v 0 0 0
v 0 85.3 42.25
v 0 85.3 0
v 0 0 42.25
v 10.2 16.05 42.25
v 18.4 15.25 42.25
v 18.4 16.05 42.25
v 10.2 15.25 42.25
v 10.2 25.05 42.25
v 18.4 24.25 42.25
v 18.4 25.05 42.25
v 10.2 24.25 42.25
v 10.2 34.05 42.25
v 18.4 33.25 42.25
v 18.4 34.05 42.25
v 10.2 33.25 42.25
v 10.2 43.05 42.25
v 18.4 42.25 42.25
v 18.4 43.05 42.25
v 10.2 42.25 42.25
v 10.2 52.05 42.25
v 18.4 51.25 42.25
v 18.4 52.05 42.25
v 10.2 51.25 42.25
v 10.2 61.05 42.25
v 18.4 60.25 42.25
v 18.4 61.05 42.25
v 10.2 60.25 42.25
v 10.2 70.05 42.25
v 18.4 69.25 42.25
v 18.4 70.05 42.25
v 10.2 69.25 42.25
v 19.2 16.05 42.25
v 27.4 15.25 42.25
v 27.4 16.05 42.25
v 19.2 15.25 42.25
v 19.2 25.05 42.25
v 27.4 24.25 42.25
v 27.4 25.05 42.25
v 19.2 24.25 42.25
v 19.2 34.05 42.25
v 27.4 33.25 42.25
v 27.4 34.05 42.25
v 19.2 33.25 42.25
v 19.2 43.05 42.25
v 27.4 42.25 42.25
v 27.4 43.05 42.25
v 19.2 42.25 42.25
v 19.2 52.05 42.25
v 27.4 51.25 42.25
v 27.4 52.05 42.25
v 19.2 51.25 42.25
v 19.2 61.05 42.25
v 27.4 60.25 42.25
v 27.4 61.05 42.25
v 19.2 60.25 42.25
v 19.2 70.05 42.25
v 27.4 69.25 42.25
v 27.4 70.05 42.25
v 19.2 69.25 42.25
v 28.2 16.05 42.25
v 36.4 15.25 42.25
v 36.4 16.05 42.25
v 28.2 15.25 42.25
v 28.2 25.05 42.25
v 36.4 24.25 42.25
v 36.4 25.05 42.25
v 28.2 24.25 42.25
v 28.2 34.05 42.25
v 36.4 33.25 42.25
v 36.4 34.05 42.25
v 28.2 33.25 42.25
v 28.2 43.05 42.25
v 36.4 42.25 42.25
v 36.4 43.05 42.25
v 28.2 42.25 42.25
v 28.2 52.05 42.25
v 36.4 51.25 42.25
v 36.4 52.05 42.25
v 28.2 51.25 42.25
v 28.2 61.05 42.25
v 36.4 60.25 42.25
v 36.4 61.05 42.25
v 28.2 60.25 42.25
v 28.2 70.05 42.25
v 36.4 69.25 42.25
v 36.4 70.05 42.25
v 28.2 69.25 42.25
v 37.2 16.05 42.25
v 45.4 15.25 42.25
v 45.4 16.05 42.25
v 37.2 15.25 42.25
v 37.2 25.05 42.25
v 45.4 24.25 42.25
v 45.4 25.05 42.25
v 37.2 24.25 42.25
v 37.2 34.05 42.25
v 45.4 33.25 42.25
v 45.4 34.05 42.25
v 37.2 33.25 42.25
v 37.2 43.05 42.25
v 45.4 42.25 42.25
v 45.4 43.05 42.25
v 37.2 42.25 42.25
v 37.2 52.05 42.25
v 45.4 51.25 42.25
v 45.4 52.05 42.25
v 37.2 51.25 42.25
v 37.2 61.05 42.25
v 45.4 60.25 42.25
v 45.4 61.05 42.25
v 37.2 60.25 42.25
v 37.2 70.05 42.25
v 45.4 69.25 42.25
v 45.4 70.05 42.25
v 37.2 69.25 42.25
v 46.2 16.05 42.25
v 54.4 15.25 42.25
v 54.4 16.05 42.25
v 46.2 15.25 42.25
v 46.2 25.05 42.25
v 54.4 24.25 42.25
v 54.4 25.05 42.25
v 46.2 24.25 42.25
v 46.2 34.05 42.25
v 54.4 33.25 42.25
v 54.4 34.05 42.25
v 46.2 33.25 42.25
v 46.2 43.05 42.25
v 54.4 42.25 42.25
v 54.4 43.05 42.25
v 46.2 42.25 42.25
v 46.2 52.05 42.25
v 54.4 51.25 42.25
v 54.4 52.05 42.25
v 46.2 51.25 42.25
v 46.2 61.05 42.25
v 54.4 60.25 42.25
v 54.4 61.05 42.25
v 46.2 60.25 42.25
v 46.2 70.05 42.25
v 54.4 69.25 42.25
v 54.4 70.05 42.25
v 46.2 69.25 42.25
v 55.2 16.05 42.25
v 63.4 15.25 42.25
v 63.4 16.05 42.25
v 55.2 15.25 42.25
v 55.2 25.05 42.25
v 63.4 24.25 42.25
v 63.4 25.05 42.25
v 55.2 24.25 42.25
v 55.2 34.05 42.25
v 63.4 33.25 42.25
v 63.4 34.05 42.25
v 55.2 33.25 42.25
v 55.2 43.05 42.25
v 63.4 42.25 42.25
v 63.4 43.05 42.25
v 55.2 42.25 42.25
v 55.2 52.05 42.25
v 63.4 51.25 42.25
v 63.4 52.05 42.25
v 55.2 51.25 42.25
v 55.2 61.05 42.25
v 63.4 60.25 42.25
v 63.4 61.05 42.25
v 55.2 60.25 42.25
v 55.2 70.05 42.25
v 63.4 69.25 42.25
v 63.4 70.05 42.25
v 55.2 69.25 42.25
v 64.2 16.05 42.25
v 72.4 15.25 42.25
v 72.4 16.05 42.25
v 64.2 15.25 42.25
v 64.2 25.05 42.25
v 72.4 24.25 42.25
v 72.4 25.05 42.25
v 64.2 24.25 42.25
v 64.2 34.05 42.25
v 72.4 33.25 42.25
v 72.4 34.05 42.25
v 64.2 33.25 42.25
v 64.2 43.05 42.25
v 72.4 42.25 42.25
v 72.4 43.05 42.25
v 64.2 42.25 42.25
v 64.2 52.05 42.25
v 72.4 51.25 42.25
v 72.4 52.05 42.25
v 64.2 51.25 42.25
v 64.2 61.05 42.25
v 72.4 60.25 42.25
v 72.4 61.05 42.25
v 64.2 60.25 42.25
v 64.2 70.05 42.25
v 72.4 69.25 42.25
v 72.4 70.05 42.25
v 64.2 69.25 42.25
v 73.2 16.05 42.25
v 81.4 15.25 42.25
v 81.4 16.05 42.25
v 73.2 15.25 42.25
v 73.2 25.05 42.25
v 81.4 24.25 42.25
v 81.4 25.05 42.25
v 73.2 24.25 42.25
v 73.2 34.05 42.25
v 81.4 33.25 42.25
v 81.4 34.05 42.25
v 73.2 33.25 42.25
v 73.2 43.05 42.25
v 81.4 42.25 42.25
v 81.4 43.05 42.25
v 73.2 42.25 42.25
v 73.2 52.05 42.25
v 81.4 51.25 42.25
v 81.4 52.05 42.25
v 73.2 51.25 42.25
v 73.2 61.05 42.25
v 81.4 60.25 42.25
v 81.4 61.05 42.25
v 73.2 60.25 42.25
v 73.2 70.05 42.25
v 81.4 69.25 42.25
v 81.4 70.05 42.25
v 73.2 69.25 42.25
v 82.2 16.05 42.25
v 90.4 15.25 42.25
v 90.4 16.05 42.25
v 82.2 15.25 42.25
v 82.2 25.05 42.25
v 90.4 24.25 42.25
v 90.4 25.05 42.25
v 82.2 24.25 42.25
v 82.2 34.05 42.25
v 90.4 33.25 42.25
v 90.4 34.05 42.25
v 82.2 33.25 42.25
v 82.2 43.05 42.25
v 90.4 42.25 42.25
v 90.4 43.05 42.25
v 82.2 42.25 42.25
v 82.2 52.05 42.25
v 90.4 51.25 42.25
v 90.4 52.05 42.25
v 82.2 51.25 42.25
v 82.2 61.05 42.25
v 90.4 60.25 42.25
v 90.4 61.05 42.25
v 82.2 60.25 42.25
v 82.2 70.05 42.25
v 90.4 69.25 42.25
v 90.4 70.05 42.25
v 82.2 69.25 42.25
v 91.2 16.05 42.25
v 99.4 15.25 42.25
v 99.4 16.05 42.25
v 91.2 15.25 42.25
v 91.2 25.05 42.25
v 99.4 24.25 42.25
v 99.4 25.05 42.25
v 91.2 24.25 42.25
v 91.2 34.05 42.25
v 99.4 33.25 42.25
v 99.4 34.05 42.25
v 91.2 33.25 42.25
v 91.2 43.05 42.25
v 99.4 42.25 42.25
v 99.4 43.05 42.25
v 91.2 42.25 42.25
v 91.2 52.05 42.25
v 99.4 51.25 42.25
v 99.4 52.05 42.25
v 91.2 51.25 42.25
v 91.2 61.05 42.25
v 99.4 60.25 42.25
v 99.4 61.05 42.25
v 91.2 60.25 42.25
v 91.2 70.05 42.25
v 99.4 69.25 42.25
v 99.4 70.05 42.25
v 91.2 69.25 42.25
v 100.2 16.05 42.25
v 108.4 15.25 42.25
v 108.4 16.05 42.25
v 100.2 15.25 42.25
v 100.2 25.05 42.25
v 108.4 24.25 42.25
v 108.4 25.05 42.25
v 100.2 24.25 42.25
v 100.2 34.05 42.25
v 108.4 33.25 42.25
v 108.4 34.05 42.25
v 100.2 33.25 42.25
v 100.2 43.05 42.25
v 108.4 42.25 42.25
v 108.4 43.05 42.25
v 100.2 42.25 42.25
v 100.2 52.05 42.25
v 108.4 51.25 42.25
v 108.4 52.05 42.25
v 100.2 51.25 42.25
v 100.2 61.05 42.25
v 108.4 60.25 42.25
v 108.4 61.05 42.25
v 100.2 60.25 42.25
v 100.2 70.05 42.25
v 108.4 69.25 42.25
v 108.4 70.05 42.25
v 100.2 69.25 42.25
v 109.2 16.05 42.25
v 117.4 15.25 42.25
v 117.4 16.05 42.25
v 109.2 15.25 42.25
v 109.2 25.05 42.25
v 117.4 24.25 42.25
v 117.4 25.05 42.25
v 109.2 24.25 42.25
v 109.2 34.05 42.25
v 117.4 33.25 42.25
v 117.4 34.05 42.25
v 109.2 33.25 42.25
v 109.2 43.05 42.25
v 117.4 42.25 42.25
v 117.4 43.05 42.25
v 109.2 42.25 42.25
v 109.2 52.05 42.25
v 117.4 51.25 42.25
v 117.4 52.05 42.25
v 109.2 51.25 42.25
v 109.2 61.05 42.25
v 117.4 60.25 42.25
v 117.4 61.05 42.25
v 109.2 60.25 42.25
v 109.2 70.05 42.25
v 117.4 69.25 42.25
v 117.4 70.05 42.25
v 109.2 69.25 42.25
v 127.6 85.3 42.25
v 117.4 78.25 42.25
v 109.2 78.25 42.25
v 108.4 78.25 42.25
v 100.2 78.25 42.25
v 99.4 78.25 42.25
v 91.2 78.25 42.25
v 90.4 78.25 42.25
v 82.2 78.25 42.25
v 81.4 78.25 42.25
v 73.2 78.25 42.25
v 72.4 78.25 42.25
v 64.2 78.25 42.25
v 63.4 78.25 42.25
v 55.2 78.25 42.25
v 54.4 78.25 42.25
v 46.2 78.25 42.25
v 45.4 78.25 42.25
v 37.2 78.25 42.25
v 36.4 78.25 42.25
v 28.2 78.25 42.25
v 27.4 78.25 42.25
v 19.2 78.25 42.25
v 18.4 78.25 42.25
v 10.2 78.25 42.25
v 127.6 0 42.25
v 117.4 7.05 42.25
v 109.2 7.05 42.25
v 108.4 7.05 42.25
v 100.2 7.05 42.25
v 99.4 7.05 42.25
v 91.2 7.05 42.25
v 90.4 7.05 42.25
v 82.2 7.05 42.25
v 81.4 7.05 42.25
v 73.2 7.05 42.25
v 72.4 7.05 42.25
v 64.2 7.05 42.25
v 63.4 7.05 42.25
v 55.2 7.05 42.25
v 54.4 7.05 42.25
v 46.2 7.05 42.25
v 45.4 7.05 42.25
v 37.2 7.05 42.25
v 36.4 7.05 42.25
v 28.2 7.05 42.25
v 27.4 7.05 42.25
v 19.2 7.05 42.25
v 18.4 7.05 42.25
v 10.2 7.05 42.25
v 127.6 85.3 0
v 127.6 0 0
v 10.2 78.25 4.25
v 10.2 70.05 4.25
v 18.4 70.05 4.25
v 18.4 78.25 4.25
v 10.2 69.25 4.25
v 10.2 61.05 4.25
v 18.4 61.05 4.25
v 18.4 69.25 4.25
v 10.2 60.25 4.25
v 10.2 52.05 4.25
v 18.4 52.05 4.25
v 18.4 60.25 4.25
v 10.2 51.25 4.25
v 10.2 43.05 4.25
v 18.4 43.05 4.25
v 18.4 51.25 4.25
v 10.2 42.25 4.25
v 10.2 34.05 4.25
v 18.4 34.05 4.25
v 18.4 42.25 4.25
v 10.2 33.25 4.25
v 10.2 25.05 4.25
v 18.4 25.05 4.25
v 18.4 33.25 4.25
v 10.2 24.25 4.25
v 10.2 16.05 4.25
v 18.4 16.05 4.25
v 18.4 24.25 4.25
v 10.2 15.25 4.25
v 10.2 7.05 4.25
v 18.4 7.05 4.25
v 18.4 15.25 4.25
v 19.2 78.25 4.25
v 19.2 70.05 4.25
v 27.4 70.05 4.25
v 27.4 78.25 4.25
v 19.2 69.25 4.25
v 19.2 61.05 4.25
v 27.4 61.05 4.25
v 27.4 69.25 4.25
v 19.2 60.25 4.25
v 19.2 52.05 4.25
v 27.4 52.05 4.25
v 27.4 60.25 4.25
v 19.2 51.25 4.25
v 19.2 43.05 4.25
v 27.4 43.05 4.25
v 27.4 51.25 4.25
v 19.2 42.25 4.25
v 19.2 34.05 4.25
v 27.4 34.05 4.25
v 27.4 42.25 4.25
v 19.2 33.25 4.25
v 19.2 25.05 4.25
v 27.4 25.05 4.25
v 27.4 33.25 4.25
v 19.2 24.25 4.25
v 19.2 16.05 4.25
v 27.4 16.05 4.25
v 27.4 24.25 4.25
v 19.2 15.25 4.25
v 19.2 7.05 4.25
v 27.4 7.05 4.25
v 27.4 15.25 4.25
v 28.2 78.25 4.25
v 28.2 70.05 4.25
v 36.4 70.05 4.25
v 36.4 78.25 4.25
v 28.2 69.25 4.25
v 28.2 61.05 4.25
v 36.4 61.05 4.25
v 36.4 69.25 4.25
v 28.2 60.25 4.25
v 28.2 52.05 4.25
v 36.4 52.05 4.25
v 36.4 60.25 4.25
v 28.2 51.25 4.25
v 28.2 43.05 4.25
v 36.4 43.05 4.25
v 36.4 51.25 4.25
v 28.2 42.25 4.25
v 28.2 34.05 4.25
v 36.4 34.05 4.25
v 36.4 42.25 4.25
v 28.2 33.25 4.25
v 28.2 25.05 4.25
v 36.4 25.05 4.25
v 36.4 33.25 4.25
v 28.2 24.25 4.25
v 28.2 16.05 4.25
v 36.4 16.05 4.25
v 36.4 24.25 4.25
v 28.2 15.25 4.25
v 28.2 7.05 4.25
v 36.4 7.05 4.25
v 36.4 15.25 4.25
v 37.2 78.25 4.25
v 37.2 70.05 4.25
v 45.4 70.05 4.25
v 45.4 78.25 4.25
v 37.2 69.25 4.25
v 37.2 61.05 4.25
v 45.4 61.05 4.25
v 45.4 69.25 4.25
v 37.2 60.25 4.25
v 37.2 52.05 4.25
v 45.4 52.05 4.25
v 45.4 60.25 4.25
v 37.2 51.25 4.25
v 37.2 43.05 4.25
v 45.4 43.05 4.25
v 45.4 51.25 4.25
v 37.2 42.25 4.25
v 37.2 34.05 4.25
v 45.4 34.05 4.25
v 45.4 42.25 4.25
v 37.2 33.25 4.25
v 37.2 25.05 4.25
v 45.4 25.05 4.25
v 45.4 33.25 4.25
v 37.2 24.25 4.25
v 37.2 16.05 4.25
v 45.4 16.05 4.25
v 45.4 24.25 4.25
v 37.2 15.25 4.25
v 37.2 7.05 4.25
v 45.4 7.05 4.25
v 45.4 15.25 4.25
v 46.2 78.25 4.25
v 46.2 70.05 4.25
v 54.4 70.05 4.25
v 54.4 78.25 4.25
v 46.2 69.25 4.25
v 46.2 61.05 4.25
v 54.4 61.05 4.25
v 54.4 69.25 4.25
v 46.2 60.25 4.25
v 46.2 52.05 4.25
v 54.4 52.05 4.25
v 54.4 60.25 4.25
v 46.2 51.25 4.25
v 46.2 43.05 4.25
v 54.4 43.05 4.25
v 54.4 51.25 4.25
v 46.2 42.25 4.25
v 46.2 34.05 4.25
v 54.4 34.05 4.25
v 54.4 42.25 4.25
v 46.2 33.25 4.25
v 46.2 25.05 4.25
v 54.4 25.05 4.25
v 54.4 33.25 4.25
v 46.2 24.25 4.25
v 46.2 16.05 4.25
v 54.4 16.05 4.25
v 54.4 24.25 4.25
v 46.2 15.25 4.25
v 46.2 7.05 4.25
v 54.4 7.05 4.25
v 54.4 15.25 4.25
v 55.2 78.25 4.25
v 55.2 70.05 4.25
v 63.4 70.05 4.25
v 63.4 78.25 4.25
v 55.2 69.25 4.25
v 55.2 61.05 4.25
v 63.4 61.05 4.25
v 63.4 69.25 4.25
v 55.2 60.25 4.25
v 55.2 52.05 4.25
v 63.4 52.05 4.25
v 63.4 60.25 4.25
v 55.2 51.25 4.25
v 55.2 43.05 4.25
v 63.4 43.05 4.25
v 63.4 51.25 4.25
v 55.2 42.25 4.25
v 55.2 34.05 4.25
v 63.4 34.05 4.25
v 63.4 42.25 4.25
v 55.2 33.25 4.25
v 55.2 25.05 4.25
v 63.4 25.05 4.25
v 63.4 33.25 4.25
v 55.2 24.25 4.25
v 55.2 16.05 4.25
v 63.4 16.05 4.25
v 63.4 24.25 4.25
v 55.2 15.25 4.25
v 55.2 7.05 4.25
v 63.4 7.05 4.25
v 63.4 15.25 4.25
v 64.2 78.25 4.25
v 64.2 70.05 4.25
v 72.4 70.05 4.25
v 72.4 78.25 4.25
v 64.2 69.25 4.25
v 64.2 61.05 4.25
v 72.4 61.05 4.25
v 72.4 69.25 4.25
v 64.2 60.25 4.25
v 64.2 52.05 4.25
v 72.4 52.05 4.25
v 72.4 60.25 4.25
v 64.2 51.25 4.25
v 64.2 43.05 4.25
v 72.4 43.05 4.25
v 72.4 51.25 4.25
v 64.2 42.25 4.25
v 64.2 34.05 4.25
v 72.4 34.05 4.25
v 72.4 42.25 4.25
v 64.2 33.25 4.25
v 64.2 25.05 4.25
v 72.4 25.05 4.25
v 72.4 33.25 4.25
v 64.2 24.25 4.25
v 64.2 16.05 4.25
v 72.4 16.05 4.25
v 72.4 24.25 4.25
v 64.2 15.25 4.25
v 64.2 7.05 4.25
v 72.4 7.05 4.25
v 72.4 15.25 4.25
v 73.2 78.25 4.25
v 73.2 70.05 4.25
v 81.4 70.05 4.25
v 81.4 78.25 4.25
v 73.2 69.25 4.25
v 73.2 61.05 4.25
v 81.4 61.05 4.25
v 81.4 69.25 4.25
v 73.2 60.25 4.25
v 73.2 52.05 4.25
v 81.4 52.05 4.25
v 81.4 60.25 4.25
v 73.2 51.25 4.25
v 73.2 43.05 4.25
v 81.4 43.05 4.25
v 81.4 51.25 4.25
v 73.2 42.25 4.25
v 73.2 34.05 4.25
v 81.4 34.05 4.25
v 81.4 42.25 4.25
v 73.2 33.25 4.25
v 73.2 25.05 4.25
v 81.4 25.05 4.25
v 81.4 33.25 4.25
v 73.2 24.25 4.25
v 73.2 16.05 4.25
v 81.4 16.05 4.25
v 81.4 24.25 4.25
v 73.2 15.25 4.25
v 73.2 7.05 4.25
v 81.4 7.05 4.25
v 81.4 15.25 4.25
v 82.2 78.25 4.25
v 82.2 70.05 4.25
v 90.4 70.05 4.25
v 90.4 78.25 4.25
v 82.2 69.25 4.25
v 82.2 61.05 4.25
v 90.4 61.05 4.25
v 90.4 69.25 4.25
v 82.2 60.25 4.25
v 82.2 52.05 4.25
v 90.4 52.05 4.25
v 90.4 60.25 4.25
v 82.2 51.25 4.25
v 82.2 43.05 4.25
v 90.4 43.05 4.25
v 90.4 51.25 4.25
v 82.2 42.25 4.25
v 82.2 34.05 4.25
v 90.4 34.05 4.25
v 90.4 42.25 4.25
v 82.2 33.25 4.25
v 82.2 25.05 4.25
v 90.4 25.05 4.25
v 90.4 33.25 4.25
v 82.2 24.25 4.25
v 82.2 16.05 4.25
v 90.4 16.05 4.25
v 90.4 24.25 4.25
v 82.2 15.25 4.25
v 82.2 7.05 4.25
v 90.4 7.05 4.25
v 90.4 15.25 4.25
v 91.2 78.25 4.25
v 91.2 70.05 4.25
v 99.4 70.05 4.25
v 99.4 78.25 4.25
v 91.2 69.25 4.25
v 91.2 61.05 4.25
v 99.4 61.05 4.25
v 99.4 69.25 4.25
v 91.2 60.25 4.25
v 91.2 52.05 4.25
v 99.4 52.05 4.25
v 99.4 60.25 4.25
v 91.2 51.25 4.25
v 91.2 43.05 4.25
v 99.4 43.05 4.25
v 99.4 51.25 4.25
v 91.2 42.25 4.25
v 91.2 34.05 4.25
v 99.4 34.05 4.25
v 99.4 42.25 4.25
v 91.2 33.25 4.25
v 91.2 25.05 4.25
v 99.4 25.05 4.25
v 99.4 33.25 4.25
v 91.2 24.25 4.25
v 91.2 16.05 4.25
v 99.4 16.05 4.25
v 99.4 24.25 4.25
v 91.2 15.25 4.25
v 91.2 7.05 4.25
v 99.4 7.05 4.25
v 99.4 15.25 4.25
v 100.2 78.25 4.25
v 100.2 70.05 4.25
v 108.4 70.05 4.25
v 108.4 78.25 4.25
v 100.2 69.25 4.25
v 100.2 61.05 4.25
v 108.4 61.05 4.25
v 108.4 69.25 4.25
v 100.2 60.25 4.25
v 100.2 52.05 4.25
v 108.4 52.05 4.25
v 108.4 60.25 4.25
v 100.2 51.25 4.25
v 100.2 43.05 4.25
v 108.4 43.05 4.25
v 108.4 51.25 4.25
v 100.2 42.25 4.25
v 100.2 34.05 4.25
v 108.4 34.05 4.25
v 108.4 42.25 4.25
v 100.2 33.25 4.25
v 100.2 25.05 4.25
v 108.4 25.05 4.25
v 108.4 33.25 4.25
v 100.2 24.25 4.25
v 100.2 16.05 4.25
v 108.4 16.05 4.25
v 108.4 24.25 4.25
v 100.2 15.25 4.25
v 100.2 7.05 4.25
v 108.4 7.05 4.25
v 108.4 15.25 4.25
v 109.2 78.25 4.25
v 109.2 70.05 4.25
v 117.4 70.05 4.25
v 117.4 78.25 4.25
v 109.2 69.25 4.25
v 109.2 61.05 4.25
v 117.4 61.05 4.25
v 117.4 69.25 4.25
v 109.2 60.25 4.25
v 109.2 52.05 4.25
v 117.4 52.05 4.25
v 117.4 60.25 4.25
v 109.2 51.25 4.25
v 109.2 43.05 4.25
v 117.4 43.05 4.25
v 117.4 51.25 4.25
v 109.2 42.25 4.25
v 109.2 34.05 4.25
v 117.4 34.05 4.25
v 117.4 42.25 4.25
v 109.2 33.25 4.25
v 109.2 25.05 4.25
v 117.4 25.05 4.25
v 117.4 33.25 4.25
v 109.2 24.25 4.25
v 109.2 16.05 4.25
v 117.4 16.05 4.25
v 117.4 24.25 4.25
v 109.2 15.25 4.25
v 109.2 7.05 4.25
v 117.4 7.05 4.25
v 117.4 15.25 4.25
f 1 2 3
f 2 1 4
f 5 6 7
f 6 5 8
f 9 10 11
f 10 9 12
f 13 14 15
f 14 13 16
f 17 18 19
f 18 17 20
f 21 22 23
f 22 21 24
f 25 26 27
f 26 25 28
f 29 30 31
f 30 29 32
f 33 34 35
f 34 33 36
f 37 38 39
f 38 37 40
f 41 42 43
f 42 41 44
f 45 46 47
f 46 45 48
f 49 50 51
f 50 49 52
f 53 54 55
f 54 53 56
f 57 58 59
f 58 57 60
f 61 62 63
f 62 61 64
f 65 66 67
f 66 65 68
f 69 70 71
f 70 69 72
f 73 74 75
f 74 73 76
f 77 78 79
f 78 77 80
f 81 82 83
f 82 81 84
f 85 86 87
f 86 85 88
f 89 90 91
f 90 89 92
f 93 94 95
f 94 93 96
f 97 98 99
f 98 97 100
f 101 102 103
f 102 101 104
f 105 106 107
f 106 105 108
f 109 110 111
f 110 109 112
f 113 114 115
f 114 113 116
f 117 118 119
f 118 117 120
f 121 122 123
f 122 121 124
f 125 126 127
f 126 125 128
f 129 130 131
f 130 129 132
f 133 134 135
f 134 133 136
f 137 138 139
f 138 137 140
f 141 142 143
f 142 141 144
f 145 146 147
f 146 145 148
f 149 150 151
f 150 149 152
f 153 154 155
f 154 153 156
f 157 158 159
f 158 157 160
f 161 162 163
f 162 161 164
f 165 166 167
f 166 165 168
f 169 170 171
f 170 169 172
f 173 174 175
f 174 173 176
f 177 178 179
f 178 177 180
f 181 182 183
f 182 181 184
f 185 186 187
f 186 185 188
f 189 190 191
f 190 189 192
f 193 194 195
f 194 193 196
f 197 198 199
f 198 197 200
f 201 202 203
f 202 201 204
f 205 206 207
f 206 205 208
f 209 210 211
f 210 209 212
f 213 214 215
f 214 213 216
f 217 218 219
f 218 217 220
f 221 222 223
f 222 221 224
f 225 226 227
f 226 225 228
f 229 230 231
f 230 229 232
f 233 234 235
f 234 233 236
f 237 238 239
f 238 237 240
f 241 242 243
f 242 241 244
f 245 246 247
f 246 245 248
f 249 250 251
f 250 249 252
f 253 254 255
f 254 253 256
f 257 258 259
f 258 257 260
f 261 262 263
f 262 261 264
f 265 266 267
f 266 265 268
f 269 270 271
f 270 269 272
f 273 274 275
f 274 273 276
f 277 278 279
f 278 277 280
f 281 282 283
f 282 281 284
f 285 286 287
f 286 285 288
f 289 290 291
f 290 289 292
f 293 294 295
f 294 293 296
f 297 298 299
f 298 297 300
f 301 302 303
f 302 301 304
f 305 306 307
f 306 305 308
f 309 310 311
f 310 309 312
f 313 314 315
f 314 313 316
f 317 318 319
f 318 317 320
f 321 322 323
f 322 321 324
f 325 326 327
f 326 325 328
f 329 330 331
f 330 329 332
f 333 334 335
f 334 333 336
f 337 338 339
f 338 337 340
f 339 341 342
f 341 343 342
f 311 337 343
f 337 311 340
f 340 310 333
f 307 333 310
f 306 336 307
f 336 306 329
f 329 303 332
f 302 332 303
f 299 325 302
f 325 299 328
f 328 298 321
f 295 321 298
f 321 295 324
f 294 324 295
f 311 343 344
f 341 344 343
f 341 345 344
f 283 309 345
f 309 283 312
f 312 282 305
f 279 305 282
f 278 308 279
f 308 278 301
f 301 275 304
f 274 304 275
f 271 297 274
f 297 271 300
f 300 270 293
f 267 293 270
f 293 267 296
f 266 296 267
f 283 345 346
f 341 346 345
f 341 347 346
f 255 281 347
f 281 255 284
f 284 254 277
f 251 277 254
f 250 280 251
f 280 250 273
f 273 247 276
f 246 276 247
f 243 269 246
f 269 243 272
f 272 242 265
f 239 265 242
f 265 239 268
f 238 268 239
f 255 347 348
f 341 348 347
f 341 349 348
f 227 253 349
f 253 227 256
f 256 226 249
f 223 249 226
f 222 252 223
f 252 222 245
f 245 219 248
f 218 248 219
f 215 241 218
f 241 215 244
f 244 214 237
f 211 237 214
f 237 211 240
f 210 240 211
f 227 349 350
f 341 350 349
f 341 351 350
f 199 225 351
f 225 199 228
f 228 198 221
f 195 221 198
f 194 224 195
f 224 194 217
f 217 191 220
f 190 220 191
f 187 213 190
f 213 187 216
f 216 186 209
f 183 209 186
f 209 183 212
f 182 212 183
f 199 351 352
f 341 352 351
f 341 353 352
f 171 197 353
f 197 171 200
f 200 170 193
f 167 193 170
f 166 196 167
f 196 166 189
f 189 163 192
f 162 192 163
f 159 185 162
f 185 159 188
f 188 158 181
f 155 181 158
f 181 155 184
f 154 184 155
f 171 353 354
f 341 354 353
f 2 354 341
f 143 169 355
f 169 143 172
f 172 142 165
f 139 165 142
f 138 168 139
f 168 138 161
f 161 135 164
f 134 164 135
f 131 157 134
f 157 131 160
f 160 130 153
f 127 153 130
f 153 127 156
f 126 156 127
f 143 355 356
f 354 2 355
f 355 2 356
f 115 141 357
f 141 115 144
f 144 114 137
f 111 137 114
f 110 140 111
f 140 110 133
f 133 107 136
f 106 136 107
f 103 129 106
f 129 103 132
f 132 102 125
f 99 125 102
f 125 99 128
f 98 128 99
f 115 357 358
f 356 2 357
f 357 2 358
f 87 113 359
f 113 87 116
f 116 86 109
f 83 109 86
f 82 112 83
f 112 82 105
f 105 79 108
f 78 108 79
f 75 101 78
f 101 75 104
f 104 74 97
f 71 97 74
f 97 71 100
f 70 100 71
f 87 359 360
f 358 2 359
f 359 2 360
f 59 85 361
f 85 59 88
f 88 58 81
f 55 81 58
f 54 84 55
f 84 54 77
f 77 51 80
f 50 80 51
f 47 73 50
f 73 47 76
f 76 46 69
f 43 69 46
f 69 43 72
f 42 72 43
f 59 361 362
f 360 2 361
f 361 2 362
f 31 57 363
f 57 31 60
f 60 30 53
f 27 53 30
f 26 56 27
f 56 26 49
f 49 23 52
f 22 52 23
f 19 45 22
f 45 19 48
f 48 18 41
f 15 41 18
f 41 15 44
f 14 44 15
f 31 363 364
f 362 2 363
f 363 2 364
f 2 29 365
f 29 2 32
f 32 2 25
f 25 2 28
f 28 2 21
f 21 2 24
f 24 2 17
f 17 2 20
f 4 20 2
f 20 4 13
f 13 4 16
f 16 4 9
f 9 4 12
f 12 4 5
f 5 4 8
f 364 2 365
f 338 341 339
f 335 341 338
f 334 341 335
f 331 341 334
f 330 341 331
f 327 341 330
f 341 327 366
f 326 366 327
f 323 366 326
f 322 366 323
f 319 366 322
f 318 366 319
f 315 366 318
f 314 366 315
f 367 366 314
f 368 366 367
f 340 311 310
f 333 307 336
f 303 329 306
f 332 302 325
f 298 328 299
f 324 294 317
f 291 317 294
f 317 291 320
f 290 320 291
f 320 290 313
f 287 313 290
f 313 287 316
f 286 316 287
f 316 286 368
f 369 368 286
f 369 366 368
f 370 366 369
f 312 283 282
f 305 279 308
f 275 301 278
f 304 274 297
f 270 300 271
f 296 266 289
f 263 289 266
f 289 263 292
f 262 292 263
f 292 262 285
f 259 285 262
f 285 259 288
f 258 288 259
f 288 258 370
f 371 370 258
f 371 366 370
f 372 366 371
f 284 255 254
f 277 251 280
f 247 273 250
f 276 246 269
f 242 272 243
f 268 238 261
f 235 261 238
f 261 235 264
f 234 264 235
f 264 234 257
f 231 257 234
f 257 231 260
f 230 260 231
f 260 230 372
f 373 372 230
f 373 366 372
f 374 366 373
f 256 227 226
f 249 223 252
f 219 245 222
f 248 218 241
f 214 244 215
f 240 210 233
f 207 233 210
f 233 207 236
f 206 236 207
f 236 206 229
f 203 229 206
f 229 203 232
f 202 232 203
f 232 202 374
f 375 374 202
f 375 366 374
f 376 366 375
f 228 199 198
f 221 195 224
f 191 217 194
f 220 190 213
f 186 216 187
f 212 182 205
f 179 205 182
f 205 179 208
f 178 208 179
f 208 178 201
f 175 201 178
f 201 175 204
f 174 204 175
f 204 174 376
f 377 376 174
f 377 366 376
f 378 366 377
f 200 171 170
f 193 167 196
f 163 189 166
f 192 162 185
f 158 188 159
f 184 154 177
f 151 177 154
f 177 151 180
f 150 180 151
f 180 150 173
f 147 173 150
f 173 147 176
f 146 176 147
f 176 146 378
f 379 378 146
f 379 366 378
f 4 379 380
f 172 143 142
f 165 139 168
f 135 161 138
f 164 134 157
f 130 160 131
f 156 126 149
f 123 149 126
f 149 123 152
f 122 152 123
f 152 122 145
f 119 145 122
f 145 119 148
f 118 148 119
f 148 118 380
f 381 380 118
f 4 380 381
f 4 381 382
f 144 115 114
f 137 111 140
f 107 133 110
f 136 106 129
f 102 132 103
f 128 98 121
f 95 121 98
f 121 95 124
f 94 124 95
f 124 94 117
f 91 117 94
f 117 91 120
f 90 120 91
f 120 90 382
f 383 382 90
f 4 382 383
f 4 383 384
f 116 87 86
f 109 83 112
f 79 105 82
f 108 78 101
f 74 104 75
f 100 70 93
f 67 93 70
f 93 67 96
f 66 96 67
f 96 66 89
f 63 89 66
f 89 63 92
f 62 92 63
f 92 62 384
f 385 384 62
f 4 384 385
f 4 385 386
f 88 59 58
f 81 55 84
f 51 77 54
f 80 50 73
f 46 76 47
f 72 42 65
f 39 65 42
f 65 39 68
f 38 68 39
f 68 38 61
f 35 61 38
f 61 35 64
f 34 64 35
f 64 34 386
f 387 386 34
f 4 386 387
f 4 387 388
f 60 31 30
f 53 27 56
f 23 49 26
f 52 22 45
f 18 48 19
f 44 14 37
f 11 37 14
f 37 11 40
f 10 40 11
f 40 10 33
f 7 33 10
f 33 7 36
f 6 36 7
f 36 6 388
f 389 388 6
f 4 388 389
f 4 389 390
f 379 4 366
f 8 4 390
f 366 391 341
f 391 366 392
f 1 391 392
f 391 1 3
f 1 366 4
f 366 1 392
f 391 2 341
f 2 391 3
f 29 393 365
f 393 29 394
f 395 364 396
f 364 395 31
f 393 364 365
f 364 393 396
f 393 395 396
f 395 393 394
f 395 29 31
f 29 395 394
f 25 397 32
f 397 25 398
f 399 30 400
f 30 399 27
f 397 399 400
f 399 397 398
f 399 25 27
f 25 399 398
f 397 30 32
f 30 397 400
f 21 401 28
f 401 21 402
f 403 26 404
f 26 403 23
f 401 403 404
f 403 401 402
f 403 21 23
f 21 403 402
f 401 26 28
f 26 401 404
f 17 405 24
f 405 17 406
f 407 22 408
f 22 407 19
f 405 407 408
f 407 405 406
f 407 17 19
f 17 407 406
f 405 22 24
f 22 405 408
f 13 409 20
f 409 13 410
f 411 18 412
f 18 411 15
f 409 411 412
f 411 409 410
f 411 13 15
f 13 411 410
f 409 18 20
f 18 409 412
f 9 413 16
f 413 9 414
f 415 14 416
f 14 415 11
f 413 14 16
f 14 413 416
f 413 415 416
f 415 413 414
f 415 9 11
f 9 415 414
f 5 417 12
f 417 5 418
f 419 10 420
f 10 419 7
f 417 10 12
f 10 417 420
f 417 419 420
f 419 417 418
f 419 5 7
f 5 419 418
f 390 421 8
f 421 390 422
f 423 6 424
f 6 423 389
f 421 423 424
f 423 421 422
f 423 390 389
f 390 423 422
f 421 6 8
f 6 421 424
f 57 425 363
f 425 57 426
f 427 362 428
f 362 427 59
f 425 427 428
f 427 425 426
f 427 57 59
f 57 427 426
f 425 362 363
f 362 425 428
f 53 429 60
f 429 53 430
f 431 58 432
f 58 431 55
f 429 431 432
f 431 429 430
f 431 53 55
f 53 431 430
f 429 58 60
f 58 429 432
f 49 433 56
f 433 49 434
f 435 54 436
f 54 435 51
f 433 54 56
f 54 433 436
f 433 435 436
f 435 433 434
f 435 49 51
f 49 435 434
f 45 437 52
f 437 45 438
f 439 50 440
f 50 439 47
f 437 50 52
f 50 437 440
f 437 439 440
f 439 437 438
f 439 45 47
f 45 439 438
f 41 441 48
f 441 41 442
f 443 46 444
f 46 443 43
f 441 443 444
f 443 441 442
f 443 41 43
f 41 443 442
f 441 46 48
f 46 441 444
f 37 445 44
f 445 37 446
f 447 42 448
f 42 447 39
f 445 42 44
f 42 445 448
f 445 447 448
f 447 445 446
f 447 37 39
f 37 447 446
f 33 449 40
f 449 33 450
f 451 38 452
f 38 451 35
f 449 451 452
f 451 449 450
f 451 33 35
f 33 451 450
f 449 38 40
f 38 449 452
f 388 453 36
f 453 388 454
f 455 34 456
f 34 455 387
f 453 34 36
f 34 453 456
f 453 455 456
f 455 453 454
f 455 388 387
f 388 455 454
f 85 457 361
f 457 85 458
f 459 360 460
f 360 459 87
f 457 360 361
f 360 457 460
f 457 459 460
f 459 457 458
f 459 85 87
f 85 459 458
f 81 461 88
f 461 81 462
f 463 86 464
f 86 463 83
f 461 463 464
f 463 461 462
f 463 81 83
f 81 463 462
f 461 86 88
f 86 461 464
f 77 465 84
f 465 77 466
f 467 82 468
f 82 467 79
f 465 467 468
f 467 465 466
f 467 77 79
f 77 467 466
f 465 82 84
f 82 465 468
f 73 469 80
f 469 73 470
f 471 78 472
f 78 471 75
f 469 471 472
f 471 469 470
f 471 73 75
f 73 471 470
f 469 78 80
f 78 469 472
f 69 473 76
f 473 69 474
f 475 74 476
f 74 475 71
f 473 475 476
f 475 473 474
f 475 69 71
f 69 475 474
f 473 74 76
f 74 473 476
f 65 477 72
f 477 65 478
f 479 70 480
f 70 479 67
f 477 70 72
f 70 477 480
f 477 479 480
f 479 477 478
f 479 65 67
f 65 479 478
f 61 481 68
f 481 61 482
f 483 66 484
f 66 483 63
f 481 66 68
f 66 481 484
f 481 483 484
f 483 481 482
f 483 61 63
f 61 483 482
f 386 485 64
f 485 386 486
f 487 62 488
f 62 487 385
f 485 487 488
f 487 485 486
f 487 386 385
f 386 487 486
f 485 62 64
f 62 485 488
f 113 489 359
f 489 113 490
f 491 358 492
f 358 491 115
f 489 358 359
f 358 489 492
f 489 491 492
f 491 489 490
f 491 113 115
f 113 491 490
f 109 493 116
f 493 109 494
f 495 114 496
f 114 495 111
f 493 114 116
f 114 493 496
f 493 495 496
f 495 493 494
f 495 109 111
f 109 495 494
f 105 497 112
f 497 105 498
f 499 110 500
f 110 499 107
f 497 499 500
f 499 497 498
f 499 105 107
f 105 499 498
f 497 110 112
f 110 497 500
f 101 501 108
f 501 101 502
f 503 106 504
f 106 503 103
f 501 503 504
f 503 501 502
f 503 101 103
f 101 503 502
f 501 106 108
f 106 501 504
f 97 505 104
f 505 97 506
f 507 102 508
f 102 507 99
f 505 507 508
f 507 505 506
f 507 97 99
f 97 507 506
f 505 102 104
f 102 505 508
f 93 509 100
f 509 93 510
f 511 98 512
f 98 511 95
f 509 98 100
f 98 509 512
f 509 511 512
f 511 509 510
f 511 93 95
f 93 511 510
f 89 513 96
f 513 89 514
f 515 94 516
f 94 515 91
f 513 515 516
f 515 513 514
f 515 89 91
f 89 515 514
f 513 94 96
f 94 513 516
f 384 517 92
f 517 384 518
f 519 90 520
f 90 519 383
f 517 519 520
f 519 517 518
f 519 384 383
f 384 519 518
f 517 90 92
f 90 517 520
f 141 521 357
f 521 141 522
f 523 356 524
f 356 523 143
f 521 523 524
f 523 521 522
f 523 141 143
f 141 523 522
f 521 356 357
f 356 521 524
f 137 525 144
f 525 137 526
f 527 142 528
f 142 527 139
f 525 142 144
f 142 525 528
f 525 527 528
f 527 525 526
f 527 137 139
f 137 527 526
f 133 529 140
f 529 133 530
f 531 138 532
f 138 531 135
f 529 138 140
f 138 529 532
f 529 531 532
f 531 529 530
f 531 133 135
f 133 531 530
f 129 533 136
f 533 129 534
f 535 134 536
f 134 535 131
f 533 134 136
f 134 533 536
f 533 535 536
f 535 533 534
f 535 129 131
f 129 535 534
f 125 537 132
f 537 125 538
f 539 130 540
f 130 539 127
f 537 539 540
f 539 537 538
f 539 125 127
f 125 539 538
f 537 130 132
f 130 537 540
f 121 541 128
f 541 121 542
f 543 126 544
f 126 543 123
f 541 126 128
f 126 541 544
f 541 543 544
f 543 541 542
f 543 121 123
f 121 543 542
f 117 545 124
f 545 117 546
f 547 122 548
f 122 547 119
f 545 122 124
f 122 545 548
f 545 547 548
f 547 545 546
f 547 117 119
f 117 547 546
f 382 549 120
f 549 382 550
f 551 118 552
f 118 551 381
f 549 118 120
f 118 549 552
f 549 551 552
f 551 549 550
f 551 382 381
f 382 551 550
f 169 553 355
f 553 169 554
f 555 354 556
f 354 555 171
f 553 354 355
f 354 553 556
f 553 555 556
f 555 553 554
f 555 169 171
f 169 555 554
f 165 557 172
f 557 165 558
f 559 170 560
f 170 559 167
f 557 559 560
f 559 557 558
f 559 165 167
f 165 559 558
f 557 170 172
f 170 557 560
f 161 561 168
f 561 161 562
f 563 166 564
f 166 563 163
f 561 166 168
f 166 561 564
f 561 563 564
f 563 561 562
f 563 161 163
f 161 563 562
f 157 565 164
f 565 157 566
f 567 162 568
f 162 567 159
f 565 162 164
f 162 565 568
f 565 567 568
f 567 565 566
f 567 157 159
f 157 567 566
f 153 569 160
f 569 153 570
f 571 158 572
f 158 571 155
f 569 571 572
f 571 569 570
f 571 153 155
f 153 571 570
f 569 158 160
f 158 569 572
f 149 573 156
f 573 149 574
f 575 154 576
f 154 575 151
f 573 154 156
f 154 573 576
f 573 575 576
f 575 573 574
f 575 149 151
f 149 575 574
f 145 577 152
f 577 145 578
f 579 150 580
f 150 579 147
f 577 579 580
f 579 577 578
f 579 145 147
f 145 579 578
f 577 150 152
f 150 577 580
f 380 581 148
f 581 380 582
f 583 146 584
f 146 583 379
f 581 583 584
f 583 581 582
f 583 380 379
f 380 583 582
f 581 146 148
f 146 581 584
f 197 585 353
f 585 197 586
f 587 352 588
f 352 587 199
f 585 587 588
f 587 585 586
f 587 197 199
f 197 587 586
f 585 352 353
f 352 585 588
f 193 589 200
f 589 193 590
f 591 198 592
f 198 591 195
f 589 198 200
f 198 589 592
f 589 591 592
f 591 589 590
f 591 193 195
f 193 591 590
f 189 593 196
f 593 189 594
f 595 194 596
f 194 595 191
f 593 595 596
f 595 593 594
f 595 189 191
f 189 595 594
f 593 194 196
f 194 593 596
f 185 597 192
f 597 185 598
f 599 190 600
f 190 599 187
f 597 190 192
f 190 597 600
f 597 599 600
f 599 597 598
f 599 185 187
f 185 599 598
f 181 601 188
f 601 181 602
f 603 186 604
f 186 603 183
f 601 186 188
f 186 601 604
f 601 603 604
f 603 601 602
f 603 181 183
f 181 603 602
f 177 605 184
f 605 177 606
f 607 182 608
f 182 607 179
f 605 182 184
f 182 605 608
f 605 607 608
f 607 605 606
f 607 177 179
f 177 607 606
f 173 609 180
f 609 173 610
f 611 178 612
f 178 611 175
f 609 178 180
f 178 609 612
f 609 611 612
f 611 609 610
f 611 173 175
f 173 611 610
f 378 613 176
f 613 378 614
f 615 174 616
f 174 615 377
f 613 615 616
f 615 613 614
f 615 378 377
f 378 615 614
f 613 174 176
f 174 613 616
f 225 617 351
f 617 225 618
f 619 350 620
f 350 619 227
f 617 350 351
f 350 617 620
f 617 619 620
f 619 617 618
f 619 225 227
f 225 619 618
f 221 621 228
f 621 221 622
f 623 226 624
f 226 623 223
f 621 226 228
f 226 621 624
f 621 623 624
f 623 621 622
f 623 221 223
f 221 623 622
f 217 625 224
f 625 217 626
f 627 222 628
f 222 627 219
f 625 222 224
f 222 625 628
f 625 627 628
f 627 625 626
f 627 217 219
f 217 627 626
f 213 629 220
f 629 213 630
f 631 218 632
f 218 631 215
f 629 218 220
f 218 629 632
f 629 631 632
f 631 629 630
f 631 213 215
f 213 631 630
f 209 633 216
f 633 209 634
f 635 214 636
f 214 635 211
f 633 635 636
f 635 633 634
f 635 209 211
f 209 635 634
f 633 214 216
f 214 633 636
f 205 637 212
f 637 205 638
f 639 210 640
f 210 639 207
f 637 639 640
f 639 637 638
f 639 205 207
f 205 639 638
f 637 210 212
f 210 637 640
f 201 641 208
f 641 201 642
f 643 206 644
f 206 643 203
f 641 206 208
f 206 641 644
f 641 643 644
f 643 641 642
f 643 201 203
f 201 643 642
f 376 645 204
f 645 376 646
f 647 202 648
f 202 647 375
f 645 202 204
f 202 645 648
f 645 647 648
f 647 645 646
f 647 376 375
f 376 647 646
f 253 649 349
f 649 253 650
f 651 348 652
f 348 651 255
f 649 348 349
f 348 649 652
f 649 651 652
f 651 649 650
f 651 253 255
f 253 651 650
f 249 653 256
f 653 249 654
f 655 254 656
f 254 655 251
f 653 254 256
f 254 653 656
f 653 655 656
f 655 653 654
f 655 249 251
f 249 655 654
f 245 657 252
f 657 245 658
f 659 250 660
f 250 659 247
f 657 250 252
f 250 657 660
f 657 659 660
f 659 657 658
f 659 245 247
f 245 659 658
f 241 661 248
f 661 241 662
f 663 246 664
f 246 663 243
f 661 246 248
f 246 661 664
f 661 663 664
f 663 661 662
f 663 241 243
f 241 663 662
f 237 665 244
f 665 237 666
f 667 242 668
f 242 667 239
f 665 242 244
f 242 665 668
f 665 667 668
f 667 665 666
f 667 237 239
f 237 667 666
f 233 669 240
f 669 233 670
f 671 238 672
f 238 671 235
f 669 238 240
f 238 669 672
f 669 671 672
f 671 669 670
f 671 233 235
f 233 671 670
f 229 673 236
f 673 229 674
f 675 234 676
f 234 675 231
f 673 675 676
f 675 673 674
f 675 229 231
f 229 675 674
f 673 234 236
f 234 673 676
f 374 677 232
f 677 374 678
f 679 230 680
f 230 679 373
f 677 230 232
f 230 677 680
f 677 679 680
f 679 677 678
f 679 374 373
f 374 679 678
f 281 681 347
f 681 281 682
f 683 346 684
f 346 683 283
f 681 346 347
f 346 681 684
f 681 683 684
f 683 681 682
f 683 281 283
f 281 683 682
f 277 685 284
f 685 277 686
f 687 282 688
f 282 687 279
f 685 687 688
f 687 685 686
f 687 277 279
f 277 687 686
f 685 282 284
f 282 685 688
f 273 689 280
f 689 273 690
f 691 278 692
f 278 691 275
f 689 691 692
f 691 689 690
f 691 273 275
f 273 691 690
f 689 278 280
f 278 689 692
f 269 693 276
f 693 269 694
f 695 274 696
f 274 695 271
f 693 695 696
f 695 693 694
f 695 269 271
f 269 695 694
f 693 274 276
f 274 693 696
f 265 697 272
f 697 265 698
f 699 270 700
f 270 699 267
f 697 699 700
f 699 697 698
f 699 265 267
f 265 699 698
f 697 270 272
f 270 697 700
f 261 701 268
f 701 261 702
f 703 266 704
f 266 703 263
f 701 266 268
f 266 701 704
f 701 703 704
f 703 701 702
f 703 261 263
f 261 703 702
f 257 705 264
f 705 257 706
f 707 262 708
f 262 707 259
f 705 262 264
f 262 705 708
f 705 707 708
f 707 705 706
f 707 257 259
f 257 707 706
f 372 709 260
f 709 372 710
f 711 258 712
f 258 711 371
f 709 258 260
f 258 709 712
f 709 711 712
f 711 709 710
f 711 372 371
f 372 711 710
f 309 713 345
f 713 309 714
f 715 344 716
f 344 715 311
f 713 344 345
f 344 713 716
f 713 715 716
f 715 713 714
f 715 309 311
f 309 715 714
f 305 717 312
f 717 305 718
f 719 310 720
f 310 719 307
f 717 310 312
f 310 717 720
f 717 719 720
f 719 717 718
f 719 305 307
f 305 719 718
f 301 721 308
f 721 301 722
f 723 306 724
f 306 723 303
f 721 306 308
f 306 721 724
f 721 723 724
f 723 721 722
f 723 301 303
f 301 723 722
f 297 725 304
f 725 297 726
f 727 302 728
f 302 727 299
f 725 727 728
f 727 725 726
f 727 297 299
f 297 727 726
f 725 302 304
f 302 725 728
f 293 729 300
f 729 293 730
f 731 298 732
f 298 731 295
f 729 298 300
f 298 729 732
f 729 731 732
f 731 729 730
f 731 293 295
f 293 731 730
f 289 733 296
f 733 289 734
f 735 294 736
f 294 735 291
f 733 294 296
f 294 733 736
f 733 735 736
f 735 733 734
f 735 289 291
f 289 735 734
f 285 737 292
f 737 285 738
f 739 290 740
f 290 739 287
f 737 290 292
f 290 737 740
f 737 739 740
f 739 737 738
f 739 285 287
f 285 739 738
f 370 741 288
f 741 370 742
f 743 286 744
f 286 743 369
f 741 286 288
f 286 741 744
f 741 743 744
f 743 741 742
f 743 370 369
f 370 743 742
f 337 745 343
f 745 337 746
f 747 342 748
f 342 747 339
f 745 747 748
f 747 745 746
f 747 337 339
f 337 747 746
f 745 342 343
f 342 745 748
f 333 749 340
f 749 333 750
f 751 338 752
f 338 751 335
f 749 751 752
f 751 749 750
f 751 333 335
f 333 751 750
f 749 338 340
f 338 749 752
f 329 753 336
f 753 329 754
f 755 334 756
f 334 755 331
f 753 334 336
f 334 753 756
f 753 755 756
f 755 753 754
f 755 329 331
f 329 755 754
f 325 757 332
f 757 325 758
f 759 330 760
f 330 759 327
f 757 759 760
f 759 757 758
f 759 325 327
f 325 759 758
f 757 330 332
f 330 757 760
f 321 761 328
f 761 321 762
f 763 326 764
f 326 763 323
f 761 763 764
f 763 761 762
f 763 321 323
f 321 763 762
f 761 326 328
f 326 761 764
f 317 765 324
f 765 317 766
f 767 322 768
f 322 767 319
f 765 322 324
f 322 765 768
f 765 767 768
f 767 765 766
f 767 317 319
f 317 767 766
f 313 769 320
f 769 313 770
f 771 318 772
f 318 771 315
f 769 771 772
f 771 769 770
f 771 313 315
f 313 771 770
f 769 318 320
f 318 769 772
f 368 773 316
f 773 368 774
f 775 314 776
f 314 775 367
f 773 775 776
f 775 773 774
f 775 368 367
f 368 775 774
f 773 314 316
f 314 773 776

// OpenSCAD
// Opentrons 96 Deep Well Heater-Shaker Adapter with NEST Deep Well Plate 2 mL
// loadName: opentrons_96_deep_well_adapter_nest_wellplate_2ml_deep
// Auto-generated by labware_to_stl.py from Opentrons V2 labware definition

$fn = 8;

difference() {
    // ── Labware body ──────────────────────────────────────────────
    cube([127.6000, 85.3000, 42.2500]);

    // ── Well cutouts ──────────────────────────────────────────────
    // Well A1
    translate([10.2000, 70.0500, 4.2500])
        cube([8.2000, 8.2000, 39.0000]);
    // Well B1
    translate([10.2000, 61.0500, 4.2500])
        cube([8.2000, 8.2000, 39.0000]);
    // Well C1
    translate([10.2000, 52.0500, 4.2500])
        cube([8.2000, 8.2000, 39.0000]);
    // Well D1
    translate([10.2000, 43.0500, 4.2500])
        cube([8.2000, 8.2000, 39.0000]);
    // Well E1
    translate([10.2000, 34.0500, 4.2500])
        cube([8.2000, 8.2000, 39.0000]);
    // Well F1
    translate([10.2000, 25.0500, 4.2500])
        cube([8.2000, 8.2000, 39.0000]);
    // Well G1
    translate([10.2000, 16.0500, 4.2500])
        cube([8.2000, 8.2000, 39.0000]);
    // Well H1
    translate([10.2000, 7.0500, 4.2500])
        cube([8.2000, 8.2000, 39.0000]);
    // Well A2
    translate([19.2000, 70.0500, 4.2500])
        cube([8.2000, 8.2000, 39.0000]);
    // Well B2
    translate([19.2000, 61.0500, 4.2500])
        cube([8.2000, 8.2000, 39.0000]);
    // Well C2
    translate([19.2000, 52.0500, 4.2500])
        cube([8.2000, 8.2000, 39.0000]);
    // Well D2
    translate([19.2000, 43.0500, 4.2500])
        cube([8.2000, 8.2000, 39.0000]);
    // Well E2
    translate([19.2000, 34.0500, 4.2500])
        cube([8.2000, 8.2000, 39.0000]);
    // Well F2
    translate([19.2000, 25.0500, 4.2500])
        cube([8.2000, 8.2000, 39.0000]);
    // Well G2
    translate([19.2000, 16.0500, 4.2500])
        cube([8.2000, 8.2000, 39.0000]);
    // Well H2
    translate([19.2000, 7.0500, 4.2500])
        cube([8.2000, 8.2000, 39.0000]);
    // Well A3
    translate([28.2000, 70.0500, 4.2500])
        cube([8.2000, 8.2000, 39.0000]);
    // Well B3
    translate([28.2000, 61.0500, 4.2500])
        cube([8.2000, 8.2000, 39.0000]);
    // Well C3
    translate([28.2000, 52.0500, 4.2500])
        cube([8.2000, 8.2000, 39.0000]);
    // Well D3
    translate([28.2000, 43.0500, 4.2500])
        cube([8.2000, 8.2000, 39.0000]);
    // Well E3
    translate([28.2000, 34.0500, 4.2500])
        cube([8.2000, 8.2000, 39.0000]);
    // Well F3
    translate([28.2000, 25.0500, 4.2500])
        cube([8.2000, 8.2000, 39.0000]);
    // Well G3
    translate([28.2000, 16.0500, 4.2500])
        cube([8.2000, 8.2000, 39.0000]);
    // Well H3
    translate([28.2000, 7.0500, 4.2500])
        cube([8.2000, 8.2000, 39.0000]);
    // Well A4
    translate([37.2000, 70.0500, 4.2500])
        cube([8.2000, 8.2000, 39.0000]);
    // Well B4
    translate([37.2000, 61.0500, 4.2500])
        cube([8.2000, 8.2000, 39.0000]);
    // Well C4
    translate([37.2000, 52.0500, 4.2500])
        cube([8.2000, 8.2000, 39.0000]);
    // Well D4
    translate([37.2000, 43.0500, 4.2500])
        cube([8.2000, 8.2000, 39.0000]);
    // Well E4
    translate([37.2000, 34.0500, 4.2500])
        cube([8.2000, 8.2000, 39.0000]);
    // Well F4
    translate([37.2000, 25.0500, 4.2500])
        cube([8.2000, 8.2000, 39.0000]);
    // Well G4
    translate([37.2000, 16.0500, 4.2500])
        cube([8.2000, 8.2000, 39.0000]);
    // Well H4
    translate([37.2000, 7.0500, 4.2500])
        cube([8.2000, 8.2000, 39.0000]);
    // Well A5
    translate([46.2000, 70.0500, 4.2500])
        cube([8.2000, 8.2000, 39.0000]);
    // Well B5
    translate([46.2000, 61.0500, 4.2500])
        cube([8.2000, 8.2000, 39.0000]);
    // Well C5
    translate([46.2000, 52.0500, 4.2500])
        cube([8.2000, 8.2000, 39.0000]);
    // Well D5
    translate([46.2000, 43.0500, 4.2500])
        cube([8.2000, 8.2000, 39.0000]);
    // Well E5
    translate([46.2000, 34.0500, 4.2500])
        cube([8.2000, 8.2000, 39.0000]);
    // Well F5
    translate([46.2000, 25.0500, 4.2500])
        cube([8.2000, 8.2000, 39.0000]);
    // Well G5
    translate([46.2000, 16.0500, 4.2500])
        cube([8.2000, 8.2000, 39.0000]);
    // Well H5
    translate([46.2000, 7.0500, 4.2500])
        cube([8.2000, 8.2000, 39.0000]);
    // Well A6
    translate([55.2000, 70.0500, 4.2500])
        cube([8.2000, 8.2000, 39.0000]);
    // Well B6
    translate([55.2000, 61.0500, 4.2500])
        cube([8.2000, 8.2000, 39.0000]);
    // Well C6
    translate([55.2000, 52.0500, 4.2500])
        cube([8.2000, 8.2000, 39.0000]);
    // Well D6
    translate([55.2000, 43.0500, 4.2500])
        cube([8.2000, 8.2000, 39.0000]);
    // Well E6
    translate([55.2000, 34.0500, 4.2500])
        cube([8.2000, 8.2000, 39.0000]);
    // Well F6
    translate([55.2000, 25.0500, 4.2500])
        cube([8.2000, 8.2000, 39.0000]);
    // Well G6
    translate([55.2000, 16.0500, 4.2500])
        cube([8.2000, 8.2000, 39.0000]);
    // Well H6
    translate([55.2000, 7.0500, 4.2500])
        cube([8.2000, 8.2000, 39.0000]);
    // Well A7
    translate([64.2000, 70.0500, 4.2500])
        cube([8.2000, 8.2000, 39.0000]);
    // Well B7
    translate([64.2000, 61.0500, 4.2500])
        cube([8.2000, 8.2000, 39.0000]);
    // Well C7
    translate([64.2000, 52.0500, 4.2500])
        cube([8.2000, 8.2000, 39.0000]);
    // Well D7
    translate([64.2000, 43.0500, 4.2500])
        cube([8.2000, 8.2000, 39.0000]);
    // Well E7
    translate([64.2000, 34.0500, 4.2500])
        cube([8.2000, 8.2000, 39.0000]);
    // Well F7
    translate([64.2000, 25.0500, 4.2500])
        cube([8.2000, 8.2000, 39.0000]);
    // Well G7
    translate([64.2000, 16.0500, 4.2500])
        cube([8.2000, 8.2000, 39.0000]);
    // Well H7
    translate([64.2000, 7.0500, 4.2500])
        cube([8.2000, 8.2000, 39.0000]);
    // Well A8
    translate([73.2000, 70.0500, 4.2500])
        cube([8.2000, 8.2000, 39.0000]);
    // Well B8
    translate([73.2000, 61.0500, 4.2500])
        cube([8.2000, 8.2000, 39.0000]);
    // Well C8
    translate([73.2000, 52.0500, 4.2500])
        cube([8.2000, 8.2000, 39.0000]);
    // Well D8
    translate([73.2000, 43.0500, 4.2500])
        cube([8.2000, 8.2000, 39.0000]);
    // Well E8
    translate([73.2000, 34.0500, 4.2500])
        cube([8.2000, 8.2000, 39.0000]);
    // Well F8
    translate([73.2000, 25.0500, 4.2500])
        cube([8.2000, 8.2000, 39.0000]);
    // Well G8
    translate([73.2000, 16.0500, 4.2500])
        cube([8.2000, 8.2000, 39.0000]);
    // Well H8
    translate([73.2000, 7.0500, 4.2500])
        cube([8.2000, 8.2000, 39.0000]);
    // Well A9
    translate([82.2000, 70.0500, 4.2500])
        cube([8.2000, 8.2000, 39.0000]);
    // Well B9
    translate([82.2000, 61.0500, 4.2500])
        cube([8.2000, 8.2000, 39.0000]);
    // Well C9
    translate([82.2000, 52.0500, 4.2500])
        cube([8.2000, 8.2000, 39.0000]);
    // Well D9
    translate([82.2000, 43.0500, 4.2500])
        cube([8.2000, 8.2000, 39.0000]);
    // Well E9
    translate([82.2000, 34.0500, 4.2500])
        cube([8.2000, 8.2000, 39.0000]);
    // Well F9
    translate([82.2000, 25.0500, 4.2500])
        cube([8.2000, 8.2000, 39.0000]);
    // Well G9
    translate([82.2000, 16.0500, 4.2500])
        cube([8.2000, 8.2000, 39.0000]);
    // Well H9
    translate([82.2000, 7.0500, 4.2500])
        cube([8.2000, 8.2000, 39.0000]);
    // Well A10
    translate([91.2000, 70.0500, 4.2500])
        cube([8.2000, 8.2000, 39.0000]);
    // Well B10
    translate([91.2000, 61.0500, 4.2500])
        cube([8.2000, 8.2000, 39.0000]);
    // Well C10
    translate([91.2000, 52.0500, 4.2500])
        cube([8.2000, 8.2000, 39.0000]);
    // Well D10
    translate([91.2000, 43.0500, 4.2500])
        cube([8.2000, 8.2000, 39.0000]);
    // Well E10
    translate([91.2000, 34.0500, 4.2500])
        cube([8.2000, 8.2000, 39.0000]);
    // Well F10
    translate([91.2000, 25.0500, 4.2500])
        cube([8.2000, 8.2000, 39.0000]);
    // Well G10
    translate([91.2000, 16.0500, 4.2500])
        cube([8.2000, 8.2000, 39.0000]);
    // Well H10
    translate([91.2000, 7.0500, 4.2500])
        cube([8.2000, 8.2000, 39.0000]);
    // Well A11
    translate([100.2000, 70.0500, 4.2500])
        cube([8.2000, 8.2000, 39.0000]);
    // Well B11
    translate([100.2000, 61.0500, 4.2500])
        cube([8.2000, 8.2000, 39.0000]);
    // Well C11
    translate([100.2000, 52.0500, 4.2500])
        cube([8.2000, 8.2000, 39.0000]);
    // Well D11
    translate([100.2000, 43.0500, 4.2500])
        cube([8.2000, 8.2000, 39.0000]);
    // Well E11
    translate([100.2000, 34.0500, 4.2500])
        cube([8.2000, 8.2000, 39.0000]);
    // Well F11
    translate([100.2000, 25.0500, 4.2500])
        cube([8.2000, 8.2000, 39.0000]);
    // Well G11
    translate([100.2000, 16.0500, 4.2500])
        cube([8.2000, 8.2000, 39.0000]);
    // Well H11
    translate([100.2000, 7.0500, 4.2500])
        cube([8.2000, 8.2000, 39.0000]);
    // Well A12
    translate([109.2000, 70.0500, 4.2500])
        cube([8.2000, 8.2000, 39.0000]);
    // Well B12
    translate([109.2000, 61.0500, 4.2500])
        cube([8.2000, 8.2000, 39.0000]);
    // Well C12
    translate([109.2000, 52.0500, 4.2500])
        cube([8.2000, 8.2000, 39.0000]);
    // Well D12
    translate([109.2000, 43.0500, 4.2500])
        cube([8.2000, 8.2000, 39.0000]);
    // Well E12
    translate([109.2000, 34.0500, 4.2500])
        cube([8.2000, 8.2000, 39.0000]);
    // Well F12
    translate([109.2000, 25.0500, 4.2500])
        cube([8.2000, 8.2000, 39.0000]);
    // Well G12
    translate([109.2000, 16.0500, 4.2500])
        cube([8.2000, 8.2000, 39.0000]);
    // Well H12
    translate([109.2000, 7.0500, 4.2500])
        cube([8.2000, 8.2000, 39.0000]);
}
